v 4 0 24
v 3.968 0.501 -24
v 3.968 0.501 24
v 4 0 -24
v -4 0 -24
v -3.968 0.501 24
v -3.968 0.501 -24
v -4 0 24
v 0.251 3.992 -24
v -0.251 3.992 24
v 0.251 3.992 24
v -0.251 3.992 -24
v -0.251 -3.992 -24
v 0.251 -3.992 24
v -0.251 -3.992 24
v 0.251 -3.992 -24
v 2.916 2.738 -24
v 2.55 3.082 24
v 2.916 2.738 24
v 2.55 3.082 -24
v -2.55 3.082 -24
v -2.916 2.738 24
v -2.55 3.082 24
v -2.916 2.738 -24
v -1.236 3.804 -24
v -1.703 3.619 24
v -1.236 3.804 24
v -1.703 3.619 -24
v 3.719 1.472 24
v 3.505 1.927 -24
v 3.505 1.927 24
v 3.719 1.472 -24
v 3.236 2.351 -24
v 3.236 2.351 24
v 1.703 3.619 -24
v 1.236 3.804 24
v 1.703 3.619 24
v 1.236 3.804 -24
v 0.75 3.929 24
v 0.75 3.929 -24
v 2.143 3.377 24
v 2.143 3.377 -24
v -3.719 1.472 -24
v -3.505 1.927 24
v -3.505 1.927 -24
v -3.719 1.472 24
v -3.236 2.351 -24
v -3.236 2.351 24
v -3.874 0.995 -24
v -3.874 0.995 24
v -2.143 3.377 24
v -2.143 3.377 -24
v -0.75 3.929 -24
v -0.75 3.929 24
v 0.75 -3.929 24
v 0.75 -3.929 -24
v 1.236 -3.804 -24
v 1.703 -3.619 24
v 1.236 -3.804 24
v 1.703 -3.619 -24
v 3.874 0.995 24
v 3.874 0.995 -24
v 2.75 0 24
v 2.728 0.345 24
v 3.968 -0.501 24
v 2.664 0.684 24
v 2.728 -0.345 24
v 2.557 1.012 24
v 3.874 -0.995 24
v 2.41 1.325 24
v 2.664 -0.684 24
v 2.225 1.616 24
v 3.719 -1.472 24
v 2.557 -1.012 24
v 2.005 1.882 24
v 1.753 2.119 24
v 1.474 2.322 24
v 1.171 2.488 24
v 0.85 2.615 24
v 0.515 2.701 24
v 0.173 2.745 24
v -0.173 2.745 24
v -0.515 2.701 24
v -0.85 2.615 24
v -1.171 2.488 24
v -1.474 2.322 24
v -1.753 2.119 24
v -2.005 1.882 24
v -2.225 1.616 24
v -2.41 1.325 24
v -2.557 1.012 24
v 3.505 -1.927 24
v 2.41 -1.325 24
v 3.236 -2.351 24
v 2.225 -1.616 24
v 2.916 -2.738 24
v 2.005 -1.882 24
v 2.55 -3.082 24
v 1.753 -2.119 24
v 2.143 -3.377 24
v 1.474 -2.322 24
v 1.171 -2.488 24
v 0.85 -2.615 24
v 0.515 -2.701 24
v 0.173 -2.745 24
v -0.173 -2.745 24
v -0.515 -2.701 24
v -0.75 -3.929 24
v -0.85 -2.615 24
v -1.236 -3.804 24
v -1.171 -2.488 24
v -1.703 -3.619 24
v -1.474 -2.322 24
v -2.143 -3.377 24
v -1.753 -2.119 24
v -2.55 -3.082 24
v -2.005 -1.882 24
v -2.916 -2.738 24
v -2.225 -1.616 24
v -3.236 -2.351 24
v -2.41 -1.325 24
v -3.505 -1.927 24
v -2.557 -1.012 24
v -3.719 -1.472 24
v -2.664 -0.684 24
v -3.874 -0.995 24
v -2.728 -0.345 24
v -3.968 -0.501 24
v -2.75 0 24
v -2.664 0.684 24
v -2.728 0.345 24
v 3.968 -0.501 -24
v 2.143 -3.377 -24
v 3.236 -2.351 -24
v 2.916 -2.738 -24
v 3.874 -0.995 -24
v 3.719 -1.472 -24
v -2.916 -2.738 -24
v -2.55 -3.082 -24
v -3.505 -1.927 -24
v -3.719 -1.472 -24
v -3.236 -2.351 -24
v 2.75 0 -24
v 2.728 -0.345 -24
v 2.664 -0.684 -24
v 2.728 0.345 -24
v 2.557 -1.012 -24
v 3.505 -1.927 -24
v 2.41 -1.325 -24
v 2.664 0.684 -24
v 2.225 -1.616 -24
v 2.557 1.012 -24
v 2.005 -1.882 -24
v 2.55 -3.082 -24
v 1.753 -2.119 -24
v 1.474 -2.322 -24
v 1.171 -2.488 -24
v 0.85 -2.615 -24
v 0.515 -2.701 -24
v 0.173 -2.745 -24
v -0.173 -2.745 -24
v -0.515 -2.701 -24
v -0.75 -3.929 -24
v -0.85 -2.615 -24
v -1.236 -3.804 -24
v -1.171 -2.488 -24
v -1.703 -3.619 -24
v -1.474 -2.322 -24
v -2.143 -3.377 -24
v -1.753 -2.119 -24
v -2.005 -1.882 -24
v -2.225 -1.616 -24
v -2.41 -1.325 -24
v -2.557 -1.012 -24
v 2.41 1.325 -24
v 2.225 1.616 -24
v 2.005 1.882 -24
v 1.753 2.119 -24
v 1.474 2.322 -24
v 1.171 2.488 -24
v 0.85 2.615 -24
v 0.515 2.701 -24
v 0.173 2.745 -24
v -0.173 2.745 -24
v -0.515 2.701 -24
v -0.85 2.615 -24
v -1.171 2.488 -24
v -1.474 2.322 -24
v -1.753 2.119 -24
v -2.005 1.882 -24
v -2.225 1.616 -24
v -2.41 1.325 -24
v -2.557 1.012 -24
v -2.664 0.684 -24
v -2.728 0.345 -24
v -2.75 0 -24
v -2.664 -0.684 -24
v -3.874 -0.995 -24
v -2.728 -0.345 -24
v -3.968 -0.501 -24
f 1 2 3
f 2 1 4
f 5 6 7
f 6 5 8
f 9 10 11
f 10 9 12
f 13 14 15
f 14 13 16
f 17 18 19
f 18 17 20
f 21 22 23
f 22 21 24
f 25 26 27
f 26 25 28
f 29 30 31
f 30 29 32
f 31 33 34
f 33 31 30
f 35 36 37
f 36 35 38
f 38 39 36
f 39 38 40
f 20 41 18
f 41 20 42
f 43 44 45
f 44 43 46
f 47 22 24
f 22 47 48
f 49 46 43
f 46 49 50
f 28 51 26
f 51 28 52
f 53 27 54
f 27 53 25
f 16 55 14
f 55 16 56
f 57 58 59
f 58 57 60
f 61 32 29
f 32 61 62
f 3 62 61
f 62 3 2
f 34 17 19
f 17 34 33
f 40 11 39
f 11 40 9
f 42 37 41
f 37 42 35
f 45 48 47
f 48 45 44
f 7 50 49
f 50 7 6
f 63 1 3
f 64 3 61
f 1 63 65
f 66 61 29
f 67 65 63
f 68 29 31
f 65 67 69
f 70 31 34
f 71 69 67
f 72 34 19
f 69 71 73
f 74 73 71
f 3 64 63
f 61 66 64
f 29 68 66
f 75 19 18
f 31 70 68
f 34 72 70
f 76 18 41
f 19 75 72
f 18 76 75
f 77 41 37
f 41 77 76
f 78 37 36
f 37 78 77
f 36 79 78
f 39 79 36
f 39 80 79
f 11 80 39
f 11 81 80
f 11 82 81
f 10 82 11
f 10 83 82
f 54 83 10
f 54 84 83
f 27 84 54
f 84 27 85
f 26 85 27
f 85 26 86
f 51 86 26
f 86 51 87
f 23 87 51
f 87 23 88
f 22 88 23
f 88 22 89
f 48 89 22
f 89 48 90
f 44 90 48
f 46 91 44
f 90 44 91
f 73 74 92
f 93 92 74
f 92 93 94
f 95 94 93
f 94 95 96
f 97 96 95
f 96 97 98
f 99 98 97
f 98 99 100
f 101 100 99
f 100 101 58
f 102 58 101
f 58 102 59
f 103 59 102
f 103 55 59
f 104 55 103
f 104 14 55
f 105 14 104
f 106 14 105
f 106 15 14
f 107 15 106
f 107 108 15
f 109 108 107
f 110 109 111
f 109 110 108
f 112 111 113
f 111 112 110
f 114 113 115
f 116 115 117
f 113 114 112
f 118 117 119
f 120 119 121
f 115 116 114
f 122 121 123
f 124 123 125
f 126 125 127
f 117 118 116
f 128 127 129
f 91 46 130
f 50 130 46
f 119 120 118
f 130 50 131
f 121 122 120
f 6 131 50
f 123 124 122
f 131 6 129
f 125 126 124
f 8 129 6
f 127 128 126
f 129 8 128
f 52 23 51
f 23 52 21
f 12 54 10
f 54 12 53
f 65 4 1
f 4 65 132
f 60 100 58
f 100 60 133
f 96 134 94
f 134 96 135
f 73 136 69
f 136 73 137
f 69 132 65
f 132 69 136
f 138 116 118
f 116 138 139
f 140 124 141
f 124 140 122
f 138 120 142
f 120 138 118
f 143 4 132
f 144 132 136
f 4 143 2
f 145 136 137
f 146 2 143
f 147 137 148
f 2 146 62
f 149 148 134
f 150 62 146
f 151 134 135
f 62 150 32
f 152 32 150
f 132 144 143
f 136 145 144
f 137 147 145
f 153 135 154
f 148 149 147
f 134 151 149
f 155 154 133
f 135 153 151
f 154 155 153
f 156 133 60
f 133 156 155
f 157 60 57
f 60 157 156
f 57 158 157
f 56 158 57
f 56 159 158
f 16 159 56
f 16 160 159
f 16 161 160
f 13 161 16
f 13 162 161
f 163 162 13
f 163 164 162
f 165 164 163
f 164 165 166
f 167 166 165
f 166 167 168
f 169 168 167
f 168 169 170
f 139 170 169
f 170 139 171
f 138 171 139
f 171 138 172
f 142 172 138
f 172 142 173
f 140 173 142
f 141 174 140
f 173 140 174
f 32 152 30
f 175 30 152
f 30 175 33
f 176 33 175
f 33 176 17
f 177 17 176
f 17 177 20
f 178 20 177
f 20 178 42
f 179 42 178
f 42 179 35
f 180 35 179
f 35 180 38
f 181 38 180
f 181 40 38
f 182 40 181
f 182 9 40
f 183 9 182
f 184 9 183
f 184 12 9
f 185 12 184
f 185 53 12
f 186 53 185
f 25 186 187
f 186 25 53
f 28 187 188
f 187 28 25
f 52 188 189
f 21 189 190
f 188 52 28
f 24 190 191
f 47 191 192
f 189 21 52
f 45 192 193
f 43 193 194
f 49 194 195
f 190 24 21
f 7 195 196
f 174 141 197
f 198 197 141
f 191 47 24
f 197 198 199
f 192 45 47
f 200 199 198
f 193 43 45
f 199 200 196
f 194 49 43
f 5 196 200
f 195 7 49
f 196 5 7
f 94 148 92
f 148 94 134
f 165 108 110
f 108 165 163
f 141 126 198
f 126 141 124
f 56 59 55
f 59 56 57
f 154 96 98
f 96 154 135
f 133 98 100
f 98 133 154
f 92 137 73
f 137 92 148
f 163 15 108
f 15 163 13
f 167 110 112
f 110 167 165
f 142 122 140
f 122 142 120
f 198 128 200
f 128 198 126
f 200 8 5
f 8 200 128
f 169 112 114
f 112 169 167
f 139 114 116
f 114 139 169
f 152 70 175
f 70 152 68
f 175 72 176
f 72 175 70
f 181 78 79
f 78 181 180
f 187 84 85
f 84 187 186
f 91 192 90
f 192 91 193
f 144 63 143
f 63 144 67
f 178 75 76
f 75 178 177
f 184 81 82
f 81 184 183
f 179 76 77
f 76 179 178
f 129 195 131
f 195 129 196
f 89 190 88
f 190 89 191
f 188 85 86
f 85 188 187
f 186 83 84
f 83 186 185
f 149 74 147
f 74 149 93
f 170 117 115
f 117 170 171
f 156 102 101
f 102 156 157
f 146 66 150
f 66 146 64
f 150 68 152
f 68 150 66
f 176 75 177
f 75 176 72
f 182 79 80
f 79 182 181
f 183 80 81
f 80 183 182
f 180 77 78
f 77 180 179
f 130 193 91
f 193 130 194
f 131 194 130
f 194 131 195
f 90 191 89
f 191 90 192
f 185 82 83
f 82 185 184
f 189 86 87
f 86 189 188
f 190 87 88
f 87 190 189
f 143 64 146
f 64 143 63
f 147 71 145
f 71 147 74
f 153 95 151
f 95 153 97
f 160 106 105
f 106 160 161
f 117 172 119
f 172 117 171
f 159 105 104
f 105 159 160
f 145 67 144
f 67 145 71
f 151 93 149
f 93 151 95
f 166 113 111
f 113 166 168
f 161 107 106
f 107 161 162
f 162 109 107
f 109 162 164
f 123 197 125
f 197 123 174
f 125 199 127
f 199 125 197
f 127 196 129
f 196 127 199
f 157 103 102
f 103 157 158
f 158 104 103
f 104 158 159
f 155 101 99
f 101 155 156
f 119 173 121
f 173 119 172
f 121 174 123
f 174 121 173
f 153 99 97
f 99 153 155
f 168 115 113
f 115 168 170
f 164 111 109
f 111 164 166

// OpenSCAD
$fn = 50;


difference() {
	union() {
		translate(v = [0, 0, -24.0000000000]) {
			cylinder(h = 48, r = 4.0000000000);
		}
	}
	union() {
		translate(v = [0, 0, -100.0000000000]) {
			cylinder(h = 200, r = 2.7500000000);
		}
	}
}
